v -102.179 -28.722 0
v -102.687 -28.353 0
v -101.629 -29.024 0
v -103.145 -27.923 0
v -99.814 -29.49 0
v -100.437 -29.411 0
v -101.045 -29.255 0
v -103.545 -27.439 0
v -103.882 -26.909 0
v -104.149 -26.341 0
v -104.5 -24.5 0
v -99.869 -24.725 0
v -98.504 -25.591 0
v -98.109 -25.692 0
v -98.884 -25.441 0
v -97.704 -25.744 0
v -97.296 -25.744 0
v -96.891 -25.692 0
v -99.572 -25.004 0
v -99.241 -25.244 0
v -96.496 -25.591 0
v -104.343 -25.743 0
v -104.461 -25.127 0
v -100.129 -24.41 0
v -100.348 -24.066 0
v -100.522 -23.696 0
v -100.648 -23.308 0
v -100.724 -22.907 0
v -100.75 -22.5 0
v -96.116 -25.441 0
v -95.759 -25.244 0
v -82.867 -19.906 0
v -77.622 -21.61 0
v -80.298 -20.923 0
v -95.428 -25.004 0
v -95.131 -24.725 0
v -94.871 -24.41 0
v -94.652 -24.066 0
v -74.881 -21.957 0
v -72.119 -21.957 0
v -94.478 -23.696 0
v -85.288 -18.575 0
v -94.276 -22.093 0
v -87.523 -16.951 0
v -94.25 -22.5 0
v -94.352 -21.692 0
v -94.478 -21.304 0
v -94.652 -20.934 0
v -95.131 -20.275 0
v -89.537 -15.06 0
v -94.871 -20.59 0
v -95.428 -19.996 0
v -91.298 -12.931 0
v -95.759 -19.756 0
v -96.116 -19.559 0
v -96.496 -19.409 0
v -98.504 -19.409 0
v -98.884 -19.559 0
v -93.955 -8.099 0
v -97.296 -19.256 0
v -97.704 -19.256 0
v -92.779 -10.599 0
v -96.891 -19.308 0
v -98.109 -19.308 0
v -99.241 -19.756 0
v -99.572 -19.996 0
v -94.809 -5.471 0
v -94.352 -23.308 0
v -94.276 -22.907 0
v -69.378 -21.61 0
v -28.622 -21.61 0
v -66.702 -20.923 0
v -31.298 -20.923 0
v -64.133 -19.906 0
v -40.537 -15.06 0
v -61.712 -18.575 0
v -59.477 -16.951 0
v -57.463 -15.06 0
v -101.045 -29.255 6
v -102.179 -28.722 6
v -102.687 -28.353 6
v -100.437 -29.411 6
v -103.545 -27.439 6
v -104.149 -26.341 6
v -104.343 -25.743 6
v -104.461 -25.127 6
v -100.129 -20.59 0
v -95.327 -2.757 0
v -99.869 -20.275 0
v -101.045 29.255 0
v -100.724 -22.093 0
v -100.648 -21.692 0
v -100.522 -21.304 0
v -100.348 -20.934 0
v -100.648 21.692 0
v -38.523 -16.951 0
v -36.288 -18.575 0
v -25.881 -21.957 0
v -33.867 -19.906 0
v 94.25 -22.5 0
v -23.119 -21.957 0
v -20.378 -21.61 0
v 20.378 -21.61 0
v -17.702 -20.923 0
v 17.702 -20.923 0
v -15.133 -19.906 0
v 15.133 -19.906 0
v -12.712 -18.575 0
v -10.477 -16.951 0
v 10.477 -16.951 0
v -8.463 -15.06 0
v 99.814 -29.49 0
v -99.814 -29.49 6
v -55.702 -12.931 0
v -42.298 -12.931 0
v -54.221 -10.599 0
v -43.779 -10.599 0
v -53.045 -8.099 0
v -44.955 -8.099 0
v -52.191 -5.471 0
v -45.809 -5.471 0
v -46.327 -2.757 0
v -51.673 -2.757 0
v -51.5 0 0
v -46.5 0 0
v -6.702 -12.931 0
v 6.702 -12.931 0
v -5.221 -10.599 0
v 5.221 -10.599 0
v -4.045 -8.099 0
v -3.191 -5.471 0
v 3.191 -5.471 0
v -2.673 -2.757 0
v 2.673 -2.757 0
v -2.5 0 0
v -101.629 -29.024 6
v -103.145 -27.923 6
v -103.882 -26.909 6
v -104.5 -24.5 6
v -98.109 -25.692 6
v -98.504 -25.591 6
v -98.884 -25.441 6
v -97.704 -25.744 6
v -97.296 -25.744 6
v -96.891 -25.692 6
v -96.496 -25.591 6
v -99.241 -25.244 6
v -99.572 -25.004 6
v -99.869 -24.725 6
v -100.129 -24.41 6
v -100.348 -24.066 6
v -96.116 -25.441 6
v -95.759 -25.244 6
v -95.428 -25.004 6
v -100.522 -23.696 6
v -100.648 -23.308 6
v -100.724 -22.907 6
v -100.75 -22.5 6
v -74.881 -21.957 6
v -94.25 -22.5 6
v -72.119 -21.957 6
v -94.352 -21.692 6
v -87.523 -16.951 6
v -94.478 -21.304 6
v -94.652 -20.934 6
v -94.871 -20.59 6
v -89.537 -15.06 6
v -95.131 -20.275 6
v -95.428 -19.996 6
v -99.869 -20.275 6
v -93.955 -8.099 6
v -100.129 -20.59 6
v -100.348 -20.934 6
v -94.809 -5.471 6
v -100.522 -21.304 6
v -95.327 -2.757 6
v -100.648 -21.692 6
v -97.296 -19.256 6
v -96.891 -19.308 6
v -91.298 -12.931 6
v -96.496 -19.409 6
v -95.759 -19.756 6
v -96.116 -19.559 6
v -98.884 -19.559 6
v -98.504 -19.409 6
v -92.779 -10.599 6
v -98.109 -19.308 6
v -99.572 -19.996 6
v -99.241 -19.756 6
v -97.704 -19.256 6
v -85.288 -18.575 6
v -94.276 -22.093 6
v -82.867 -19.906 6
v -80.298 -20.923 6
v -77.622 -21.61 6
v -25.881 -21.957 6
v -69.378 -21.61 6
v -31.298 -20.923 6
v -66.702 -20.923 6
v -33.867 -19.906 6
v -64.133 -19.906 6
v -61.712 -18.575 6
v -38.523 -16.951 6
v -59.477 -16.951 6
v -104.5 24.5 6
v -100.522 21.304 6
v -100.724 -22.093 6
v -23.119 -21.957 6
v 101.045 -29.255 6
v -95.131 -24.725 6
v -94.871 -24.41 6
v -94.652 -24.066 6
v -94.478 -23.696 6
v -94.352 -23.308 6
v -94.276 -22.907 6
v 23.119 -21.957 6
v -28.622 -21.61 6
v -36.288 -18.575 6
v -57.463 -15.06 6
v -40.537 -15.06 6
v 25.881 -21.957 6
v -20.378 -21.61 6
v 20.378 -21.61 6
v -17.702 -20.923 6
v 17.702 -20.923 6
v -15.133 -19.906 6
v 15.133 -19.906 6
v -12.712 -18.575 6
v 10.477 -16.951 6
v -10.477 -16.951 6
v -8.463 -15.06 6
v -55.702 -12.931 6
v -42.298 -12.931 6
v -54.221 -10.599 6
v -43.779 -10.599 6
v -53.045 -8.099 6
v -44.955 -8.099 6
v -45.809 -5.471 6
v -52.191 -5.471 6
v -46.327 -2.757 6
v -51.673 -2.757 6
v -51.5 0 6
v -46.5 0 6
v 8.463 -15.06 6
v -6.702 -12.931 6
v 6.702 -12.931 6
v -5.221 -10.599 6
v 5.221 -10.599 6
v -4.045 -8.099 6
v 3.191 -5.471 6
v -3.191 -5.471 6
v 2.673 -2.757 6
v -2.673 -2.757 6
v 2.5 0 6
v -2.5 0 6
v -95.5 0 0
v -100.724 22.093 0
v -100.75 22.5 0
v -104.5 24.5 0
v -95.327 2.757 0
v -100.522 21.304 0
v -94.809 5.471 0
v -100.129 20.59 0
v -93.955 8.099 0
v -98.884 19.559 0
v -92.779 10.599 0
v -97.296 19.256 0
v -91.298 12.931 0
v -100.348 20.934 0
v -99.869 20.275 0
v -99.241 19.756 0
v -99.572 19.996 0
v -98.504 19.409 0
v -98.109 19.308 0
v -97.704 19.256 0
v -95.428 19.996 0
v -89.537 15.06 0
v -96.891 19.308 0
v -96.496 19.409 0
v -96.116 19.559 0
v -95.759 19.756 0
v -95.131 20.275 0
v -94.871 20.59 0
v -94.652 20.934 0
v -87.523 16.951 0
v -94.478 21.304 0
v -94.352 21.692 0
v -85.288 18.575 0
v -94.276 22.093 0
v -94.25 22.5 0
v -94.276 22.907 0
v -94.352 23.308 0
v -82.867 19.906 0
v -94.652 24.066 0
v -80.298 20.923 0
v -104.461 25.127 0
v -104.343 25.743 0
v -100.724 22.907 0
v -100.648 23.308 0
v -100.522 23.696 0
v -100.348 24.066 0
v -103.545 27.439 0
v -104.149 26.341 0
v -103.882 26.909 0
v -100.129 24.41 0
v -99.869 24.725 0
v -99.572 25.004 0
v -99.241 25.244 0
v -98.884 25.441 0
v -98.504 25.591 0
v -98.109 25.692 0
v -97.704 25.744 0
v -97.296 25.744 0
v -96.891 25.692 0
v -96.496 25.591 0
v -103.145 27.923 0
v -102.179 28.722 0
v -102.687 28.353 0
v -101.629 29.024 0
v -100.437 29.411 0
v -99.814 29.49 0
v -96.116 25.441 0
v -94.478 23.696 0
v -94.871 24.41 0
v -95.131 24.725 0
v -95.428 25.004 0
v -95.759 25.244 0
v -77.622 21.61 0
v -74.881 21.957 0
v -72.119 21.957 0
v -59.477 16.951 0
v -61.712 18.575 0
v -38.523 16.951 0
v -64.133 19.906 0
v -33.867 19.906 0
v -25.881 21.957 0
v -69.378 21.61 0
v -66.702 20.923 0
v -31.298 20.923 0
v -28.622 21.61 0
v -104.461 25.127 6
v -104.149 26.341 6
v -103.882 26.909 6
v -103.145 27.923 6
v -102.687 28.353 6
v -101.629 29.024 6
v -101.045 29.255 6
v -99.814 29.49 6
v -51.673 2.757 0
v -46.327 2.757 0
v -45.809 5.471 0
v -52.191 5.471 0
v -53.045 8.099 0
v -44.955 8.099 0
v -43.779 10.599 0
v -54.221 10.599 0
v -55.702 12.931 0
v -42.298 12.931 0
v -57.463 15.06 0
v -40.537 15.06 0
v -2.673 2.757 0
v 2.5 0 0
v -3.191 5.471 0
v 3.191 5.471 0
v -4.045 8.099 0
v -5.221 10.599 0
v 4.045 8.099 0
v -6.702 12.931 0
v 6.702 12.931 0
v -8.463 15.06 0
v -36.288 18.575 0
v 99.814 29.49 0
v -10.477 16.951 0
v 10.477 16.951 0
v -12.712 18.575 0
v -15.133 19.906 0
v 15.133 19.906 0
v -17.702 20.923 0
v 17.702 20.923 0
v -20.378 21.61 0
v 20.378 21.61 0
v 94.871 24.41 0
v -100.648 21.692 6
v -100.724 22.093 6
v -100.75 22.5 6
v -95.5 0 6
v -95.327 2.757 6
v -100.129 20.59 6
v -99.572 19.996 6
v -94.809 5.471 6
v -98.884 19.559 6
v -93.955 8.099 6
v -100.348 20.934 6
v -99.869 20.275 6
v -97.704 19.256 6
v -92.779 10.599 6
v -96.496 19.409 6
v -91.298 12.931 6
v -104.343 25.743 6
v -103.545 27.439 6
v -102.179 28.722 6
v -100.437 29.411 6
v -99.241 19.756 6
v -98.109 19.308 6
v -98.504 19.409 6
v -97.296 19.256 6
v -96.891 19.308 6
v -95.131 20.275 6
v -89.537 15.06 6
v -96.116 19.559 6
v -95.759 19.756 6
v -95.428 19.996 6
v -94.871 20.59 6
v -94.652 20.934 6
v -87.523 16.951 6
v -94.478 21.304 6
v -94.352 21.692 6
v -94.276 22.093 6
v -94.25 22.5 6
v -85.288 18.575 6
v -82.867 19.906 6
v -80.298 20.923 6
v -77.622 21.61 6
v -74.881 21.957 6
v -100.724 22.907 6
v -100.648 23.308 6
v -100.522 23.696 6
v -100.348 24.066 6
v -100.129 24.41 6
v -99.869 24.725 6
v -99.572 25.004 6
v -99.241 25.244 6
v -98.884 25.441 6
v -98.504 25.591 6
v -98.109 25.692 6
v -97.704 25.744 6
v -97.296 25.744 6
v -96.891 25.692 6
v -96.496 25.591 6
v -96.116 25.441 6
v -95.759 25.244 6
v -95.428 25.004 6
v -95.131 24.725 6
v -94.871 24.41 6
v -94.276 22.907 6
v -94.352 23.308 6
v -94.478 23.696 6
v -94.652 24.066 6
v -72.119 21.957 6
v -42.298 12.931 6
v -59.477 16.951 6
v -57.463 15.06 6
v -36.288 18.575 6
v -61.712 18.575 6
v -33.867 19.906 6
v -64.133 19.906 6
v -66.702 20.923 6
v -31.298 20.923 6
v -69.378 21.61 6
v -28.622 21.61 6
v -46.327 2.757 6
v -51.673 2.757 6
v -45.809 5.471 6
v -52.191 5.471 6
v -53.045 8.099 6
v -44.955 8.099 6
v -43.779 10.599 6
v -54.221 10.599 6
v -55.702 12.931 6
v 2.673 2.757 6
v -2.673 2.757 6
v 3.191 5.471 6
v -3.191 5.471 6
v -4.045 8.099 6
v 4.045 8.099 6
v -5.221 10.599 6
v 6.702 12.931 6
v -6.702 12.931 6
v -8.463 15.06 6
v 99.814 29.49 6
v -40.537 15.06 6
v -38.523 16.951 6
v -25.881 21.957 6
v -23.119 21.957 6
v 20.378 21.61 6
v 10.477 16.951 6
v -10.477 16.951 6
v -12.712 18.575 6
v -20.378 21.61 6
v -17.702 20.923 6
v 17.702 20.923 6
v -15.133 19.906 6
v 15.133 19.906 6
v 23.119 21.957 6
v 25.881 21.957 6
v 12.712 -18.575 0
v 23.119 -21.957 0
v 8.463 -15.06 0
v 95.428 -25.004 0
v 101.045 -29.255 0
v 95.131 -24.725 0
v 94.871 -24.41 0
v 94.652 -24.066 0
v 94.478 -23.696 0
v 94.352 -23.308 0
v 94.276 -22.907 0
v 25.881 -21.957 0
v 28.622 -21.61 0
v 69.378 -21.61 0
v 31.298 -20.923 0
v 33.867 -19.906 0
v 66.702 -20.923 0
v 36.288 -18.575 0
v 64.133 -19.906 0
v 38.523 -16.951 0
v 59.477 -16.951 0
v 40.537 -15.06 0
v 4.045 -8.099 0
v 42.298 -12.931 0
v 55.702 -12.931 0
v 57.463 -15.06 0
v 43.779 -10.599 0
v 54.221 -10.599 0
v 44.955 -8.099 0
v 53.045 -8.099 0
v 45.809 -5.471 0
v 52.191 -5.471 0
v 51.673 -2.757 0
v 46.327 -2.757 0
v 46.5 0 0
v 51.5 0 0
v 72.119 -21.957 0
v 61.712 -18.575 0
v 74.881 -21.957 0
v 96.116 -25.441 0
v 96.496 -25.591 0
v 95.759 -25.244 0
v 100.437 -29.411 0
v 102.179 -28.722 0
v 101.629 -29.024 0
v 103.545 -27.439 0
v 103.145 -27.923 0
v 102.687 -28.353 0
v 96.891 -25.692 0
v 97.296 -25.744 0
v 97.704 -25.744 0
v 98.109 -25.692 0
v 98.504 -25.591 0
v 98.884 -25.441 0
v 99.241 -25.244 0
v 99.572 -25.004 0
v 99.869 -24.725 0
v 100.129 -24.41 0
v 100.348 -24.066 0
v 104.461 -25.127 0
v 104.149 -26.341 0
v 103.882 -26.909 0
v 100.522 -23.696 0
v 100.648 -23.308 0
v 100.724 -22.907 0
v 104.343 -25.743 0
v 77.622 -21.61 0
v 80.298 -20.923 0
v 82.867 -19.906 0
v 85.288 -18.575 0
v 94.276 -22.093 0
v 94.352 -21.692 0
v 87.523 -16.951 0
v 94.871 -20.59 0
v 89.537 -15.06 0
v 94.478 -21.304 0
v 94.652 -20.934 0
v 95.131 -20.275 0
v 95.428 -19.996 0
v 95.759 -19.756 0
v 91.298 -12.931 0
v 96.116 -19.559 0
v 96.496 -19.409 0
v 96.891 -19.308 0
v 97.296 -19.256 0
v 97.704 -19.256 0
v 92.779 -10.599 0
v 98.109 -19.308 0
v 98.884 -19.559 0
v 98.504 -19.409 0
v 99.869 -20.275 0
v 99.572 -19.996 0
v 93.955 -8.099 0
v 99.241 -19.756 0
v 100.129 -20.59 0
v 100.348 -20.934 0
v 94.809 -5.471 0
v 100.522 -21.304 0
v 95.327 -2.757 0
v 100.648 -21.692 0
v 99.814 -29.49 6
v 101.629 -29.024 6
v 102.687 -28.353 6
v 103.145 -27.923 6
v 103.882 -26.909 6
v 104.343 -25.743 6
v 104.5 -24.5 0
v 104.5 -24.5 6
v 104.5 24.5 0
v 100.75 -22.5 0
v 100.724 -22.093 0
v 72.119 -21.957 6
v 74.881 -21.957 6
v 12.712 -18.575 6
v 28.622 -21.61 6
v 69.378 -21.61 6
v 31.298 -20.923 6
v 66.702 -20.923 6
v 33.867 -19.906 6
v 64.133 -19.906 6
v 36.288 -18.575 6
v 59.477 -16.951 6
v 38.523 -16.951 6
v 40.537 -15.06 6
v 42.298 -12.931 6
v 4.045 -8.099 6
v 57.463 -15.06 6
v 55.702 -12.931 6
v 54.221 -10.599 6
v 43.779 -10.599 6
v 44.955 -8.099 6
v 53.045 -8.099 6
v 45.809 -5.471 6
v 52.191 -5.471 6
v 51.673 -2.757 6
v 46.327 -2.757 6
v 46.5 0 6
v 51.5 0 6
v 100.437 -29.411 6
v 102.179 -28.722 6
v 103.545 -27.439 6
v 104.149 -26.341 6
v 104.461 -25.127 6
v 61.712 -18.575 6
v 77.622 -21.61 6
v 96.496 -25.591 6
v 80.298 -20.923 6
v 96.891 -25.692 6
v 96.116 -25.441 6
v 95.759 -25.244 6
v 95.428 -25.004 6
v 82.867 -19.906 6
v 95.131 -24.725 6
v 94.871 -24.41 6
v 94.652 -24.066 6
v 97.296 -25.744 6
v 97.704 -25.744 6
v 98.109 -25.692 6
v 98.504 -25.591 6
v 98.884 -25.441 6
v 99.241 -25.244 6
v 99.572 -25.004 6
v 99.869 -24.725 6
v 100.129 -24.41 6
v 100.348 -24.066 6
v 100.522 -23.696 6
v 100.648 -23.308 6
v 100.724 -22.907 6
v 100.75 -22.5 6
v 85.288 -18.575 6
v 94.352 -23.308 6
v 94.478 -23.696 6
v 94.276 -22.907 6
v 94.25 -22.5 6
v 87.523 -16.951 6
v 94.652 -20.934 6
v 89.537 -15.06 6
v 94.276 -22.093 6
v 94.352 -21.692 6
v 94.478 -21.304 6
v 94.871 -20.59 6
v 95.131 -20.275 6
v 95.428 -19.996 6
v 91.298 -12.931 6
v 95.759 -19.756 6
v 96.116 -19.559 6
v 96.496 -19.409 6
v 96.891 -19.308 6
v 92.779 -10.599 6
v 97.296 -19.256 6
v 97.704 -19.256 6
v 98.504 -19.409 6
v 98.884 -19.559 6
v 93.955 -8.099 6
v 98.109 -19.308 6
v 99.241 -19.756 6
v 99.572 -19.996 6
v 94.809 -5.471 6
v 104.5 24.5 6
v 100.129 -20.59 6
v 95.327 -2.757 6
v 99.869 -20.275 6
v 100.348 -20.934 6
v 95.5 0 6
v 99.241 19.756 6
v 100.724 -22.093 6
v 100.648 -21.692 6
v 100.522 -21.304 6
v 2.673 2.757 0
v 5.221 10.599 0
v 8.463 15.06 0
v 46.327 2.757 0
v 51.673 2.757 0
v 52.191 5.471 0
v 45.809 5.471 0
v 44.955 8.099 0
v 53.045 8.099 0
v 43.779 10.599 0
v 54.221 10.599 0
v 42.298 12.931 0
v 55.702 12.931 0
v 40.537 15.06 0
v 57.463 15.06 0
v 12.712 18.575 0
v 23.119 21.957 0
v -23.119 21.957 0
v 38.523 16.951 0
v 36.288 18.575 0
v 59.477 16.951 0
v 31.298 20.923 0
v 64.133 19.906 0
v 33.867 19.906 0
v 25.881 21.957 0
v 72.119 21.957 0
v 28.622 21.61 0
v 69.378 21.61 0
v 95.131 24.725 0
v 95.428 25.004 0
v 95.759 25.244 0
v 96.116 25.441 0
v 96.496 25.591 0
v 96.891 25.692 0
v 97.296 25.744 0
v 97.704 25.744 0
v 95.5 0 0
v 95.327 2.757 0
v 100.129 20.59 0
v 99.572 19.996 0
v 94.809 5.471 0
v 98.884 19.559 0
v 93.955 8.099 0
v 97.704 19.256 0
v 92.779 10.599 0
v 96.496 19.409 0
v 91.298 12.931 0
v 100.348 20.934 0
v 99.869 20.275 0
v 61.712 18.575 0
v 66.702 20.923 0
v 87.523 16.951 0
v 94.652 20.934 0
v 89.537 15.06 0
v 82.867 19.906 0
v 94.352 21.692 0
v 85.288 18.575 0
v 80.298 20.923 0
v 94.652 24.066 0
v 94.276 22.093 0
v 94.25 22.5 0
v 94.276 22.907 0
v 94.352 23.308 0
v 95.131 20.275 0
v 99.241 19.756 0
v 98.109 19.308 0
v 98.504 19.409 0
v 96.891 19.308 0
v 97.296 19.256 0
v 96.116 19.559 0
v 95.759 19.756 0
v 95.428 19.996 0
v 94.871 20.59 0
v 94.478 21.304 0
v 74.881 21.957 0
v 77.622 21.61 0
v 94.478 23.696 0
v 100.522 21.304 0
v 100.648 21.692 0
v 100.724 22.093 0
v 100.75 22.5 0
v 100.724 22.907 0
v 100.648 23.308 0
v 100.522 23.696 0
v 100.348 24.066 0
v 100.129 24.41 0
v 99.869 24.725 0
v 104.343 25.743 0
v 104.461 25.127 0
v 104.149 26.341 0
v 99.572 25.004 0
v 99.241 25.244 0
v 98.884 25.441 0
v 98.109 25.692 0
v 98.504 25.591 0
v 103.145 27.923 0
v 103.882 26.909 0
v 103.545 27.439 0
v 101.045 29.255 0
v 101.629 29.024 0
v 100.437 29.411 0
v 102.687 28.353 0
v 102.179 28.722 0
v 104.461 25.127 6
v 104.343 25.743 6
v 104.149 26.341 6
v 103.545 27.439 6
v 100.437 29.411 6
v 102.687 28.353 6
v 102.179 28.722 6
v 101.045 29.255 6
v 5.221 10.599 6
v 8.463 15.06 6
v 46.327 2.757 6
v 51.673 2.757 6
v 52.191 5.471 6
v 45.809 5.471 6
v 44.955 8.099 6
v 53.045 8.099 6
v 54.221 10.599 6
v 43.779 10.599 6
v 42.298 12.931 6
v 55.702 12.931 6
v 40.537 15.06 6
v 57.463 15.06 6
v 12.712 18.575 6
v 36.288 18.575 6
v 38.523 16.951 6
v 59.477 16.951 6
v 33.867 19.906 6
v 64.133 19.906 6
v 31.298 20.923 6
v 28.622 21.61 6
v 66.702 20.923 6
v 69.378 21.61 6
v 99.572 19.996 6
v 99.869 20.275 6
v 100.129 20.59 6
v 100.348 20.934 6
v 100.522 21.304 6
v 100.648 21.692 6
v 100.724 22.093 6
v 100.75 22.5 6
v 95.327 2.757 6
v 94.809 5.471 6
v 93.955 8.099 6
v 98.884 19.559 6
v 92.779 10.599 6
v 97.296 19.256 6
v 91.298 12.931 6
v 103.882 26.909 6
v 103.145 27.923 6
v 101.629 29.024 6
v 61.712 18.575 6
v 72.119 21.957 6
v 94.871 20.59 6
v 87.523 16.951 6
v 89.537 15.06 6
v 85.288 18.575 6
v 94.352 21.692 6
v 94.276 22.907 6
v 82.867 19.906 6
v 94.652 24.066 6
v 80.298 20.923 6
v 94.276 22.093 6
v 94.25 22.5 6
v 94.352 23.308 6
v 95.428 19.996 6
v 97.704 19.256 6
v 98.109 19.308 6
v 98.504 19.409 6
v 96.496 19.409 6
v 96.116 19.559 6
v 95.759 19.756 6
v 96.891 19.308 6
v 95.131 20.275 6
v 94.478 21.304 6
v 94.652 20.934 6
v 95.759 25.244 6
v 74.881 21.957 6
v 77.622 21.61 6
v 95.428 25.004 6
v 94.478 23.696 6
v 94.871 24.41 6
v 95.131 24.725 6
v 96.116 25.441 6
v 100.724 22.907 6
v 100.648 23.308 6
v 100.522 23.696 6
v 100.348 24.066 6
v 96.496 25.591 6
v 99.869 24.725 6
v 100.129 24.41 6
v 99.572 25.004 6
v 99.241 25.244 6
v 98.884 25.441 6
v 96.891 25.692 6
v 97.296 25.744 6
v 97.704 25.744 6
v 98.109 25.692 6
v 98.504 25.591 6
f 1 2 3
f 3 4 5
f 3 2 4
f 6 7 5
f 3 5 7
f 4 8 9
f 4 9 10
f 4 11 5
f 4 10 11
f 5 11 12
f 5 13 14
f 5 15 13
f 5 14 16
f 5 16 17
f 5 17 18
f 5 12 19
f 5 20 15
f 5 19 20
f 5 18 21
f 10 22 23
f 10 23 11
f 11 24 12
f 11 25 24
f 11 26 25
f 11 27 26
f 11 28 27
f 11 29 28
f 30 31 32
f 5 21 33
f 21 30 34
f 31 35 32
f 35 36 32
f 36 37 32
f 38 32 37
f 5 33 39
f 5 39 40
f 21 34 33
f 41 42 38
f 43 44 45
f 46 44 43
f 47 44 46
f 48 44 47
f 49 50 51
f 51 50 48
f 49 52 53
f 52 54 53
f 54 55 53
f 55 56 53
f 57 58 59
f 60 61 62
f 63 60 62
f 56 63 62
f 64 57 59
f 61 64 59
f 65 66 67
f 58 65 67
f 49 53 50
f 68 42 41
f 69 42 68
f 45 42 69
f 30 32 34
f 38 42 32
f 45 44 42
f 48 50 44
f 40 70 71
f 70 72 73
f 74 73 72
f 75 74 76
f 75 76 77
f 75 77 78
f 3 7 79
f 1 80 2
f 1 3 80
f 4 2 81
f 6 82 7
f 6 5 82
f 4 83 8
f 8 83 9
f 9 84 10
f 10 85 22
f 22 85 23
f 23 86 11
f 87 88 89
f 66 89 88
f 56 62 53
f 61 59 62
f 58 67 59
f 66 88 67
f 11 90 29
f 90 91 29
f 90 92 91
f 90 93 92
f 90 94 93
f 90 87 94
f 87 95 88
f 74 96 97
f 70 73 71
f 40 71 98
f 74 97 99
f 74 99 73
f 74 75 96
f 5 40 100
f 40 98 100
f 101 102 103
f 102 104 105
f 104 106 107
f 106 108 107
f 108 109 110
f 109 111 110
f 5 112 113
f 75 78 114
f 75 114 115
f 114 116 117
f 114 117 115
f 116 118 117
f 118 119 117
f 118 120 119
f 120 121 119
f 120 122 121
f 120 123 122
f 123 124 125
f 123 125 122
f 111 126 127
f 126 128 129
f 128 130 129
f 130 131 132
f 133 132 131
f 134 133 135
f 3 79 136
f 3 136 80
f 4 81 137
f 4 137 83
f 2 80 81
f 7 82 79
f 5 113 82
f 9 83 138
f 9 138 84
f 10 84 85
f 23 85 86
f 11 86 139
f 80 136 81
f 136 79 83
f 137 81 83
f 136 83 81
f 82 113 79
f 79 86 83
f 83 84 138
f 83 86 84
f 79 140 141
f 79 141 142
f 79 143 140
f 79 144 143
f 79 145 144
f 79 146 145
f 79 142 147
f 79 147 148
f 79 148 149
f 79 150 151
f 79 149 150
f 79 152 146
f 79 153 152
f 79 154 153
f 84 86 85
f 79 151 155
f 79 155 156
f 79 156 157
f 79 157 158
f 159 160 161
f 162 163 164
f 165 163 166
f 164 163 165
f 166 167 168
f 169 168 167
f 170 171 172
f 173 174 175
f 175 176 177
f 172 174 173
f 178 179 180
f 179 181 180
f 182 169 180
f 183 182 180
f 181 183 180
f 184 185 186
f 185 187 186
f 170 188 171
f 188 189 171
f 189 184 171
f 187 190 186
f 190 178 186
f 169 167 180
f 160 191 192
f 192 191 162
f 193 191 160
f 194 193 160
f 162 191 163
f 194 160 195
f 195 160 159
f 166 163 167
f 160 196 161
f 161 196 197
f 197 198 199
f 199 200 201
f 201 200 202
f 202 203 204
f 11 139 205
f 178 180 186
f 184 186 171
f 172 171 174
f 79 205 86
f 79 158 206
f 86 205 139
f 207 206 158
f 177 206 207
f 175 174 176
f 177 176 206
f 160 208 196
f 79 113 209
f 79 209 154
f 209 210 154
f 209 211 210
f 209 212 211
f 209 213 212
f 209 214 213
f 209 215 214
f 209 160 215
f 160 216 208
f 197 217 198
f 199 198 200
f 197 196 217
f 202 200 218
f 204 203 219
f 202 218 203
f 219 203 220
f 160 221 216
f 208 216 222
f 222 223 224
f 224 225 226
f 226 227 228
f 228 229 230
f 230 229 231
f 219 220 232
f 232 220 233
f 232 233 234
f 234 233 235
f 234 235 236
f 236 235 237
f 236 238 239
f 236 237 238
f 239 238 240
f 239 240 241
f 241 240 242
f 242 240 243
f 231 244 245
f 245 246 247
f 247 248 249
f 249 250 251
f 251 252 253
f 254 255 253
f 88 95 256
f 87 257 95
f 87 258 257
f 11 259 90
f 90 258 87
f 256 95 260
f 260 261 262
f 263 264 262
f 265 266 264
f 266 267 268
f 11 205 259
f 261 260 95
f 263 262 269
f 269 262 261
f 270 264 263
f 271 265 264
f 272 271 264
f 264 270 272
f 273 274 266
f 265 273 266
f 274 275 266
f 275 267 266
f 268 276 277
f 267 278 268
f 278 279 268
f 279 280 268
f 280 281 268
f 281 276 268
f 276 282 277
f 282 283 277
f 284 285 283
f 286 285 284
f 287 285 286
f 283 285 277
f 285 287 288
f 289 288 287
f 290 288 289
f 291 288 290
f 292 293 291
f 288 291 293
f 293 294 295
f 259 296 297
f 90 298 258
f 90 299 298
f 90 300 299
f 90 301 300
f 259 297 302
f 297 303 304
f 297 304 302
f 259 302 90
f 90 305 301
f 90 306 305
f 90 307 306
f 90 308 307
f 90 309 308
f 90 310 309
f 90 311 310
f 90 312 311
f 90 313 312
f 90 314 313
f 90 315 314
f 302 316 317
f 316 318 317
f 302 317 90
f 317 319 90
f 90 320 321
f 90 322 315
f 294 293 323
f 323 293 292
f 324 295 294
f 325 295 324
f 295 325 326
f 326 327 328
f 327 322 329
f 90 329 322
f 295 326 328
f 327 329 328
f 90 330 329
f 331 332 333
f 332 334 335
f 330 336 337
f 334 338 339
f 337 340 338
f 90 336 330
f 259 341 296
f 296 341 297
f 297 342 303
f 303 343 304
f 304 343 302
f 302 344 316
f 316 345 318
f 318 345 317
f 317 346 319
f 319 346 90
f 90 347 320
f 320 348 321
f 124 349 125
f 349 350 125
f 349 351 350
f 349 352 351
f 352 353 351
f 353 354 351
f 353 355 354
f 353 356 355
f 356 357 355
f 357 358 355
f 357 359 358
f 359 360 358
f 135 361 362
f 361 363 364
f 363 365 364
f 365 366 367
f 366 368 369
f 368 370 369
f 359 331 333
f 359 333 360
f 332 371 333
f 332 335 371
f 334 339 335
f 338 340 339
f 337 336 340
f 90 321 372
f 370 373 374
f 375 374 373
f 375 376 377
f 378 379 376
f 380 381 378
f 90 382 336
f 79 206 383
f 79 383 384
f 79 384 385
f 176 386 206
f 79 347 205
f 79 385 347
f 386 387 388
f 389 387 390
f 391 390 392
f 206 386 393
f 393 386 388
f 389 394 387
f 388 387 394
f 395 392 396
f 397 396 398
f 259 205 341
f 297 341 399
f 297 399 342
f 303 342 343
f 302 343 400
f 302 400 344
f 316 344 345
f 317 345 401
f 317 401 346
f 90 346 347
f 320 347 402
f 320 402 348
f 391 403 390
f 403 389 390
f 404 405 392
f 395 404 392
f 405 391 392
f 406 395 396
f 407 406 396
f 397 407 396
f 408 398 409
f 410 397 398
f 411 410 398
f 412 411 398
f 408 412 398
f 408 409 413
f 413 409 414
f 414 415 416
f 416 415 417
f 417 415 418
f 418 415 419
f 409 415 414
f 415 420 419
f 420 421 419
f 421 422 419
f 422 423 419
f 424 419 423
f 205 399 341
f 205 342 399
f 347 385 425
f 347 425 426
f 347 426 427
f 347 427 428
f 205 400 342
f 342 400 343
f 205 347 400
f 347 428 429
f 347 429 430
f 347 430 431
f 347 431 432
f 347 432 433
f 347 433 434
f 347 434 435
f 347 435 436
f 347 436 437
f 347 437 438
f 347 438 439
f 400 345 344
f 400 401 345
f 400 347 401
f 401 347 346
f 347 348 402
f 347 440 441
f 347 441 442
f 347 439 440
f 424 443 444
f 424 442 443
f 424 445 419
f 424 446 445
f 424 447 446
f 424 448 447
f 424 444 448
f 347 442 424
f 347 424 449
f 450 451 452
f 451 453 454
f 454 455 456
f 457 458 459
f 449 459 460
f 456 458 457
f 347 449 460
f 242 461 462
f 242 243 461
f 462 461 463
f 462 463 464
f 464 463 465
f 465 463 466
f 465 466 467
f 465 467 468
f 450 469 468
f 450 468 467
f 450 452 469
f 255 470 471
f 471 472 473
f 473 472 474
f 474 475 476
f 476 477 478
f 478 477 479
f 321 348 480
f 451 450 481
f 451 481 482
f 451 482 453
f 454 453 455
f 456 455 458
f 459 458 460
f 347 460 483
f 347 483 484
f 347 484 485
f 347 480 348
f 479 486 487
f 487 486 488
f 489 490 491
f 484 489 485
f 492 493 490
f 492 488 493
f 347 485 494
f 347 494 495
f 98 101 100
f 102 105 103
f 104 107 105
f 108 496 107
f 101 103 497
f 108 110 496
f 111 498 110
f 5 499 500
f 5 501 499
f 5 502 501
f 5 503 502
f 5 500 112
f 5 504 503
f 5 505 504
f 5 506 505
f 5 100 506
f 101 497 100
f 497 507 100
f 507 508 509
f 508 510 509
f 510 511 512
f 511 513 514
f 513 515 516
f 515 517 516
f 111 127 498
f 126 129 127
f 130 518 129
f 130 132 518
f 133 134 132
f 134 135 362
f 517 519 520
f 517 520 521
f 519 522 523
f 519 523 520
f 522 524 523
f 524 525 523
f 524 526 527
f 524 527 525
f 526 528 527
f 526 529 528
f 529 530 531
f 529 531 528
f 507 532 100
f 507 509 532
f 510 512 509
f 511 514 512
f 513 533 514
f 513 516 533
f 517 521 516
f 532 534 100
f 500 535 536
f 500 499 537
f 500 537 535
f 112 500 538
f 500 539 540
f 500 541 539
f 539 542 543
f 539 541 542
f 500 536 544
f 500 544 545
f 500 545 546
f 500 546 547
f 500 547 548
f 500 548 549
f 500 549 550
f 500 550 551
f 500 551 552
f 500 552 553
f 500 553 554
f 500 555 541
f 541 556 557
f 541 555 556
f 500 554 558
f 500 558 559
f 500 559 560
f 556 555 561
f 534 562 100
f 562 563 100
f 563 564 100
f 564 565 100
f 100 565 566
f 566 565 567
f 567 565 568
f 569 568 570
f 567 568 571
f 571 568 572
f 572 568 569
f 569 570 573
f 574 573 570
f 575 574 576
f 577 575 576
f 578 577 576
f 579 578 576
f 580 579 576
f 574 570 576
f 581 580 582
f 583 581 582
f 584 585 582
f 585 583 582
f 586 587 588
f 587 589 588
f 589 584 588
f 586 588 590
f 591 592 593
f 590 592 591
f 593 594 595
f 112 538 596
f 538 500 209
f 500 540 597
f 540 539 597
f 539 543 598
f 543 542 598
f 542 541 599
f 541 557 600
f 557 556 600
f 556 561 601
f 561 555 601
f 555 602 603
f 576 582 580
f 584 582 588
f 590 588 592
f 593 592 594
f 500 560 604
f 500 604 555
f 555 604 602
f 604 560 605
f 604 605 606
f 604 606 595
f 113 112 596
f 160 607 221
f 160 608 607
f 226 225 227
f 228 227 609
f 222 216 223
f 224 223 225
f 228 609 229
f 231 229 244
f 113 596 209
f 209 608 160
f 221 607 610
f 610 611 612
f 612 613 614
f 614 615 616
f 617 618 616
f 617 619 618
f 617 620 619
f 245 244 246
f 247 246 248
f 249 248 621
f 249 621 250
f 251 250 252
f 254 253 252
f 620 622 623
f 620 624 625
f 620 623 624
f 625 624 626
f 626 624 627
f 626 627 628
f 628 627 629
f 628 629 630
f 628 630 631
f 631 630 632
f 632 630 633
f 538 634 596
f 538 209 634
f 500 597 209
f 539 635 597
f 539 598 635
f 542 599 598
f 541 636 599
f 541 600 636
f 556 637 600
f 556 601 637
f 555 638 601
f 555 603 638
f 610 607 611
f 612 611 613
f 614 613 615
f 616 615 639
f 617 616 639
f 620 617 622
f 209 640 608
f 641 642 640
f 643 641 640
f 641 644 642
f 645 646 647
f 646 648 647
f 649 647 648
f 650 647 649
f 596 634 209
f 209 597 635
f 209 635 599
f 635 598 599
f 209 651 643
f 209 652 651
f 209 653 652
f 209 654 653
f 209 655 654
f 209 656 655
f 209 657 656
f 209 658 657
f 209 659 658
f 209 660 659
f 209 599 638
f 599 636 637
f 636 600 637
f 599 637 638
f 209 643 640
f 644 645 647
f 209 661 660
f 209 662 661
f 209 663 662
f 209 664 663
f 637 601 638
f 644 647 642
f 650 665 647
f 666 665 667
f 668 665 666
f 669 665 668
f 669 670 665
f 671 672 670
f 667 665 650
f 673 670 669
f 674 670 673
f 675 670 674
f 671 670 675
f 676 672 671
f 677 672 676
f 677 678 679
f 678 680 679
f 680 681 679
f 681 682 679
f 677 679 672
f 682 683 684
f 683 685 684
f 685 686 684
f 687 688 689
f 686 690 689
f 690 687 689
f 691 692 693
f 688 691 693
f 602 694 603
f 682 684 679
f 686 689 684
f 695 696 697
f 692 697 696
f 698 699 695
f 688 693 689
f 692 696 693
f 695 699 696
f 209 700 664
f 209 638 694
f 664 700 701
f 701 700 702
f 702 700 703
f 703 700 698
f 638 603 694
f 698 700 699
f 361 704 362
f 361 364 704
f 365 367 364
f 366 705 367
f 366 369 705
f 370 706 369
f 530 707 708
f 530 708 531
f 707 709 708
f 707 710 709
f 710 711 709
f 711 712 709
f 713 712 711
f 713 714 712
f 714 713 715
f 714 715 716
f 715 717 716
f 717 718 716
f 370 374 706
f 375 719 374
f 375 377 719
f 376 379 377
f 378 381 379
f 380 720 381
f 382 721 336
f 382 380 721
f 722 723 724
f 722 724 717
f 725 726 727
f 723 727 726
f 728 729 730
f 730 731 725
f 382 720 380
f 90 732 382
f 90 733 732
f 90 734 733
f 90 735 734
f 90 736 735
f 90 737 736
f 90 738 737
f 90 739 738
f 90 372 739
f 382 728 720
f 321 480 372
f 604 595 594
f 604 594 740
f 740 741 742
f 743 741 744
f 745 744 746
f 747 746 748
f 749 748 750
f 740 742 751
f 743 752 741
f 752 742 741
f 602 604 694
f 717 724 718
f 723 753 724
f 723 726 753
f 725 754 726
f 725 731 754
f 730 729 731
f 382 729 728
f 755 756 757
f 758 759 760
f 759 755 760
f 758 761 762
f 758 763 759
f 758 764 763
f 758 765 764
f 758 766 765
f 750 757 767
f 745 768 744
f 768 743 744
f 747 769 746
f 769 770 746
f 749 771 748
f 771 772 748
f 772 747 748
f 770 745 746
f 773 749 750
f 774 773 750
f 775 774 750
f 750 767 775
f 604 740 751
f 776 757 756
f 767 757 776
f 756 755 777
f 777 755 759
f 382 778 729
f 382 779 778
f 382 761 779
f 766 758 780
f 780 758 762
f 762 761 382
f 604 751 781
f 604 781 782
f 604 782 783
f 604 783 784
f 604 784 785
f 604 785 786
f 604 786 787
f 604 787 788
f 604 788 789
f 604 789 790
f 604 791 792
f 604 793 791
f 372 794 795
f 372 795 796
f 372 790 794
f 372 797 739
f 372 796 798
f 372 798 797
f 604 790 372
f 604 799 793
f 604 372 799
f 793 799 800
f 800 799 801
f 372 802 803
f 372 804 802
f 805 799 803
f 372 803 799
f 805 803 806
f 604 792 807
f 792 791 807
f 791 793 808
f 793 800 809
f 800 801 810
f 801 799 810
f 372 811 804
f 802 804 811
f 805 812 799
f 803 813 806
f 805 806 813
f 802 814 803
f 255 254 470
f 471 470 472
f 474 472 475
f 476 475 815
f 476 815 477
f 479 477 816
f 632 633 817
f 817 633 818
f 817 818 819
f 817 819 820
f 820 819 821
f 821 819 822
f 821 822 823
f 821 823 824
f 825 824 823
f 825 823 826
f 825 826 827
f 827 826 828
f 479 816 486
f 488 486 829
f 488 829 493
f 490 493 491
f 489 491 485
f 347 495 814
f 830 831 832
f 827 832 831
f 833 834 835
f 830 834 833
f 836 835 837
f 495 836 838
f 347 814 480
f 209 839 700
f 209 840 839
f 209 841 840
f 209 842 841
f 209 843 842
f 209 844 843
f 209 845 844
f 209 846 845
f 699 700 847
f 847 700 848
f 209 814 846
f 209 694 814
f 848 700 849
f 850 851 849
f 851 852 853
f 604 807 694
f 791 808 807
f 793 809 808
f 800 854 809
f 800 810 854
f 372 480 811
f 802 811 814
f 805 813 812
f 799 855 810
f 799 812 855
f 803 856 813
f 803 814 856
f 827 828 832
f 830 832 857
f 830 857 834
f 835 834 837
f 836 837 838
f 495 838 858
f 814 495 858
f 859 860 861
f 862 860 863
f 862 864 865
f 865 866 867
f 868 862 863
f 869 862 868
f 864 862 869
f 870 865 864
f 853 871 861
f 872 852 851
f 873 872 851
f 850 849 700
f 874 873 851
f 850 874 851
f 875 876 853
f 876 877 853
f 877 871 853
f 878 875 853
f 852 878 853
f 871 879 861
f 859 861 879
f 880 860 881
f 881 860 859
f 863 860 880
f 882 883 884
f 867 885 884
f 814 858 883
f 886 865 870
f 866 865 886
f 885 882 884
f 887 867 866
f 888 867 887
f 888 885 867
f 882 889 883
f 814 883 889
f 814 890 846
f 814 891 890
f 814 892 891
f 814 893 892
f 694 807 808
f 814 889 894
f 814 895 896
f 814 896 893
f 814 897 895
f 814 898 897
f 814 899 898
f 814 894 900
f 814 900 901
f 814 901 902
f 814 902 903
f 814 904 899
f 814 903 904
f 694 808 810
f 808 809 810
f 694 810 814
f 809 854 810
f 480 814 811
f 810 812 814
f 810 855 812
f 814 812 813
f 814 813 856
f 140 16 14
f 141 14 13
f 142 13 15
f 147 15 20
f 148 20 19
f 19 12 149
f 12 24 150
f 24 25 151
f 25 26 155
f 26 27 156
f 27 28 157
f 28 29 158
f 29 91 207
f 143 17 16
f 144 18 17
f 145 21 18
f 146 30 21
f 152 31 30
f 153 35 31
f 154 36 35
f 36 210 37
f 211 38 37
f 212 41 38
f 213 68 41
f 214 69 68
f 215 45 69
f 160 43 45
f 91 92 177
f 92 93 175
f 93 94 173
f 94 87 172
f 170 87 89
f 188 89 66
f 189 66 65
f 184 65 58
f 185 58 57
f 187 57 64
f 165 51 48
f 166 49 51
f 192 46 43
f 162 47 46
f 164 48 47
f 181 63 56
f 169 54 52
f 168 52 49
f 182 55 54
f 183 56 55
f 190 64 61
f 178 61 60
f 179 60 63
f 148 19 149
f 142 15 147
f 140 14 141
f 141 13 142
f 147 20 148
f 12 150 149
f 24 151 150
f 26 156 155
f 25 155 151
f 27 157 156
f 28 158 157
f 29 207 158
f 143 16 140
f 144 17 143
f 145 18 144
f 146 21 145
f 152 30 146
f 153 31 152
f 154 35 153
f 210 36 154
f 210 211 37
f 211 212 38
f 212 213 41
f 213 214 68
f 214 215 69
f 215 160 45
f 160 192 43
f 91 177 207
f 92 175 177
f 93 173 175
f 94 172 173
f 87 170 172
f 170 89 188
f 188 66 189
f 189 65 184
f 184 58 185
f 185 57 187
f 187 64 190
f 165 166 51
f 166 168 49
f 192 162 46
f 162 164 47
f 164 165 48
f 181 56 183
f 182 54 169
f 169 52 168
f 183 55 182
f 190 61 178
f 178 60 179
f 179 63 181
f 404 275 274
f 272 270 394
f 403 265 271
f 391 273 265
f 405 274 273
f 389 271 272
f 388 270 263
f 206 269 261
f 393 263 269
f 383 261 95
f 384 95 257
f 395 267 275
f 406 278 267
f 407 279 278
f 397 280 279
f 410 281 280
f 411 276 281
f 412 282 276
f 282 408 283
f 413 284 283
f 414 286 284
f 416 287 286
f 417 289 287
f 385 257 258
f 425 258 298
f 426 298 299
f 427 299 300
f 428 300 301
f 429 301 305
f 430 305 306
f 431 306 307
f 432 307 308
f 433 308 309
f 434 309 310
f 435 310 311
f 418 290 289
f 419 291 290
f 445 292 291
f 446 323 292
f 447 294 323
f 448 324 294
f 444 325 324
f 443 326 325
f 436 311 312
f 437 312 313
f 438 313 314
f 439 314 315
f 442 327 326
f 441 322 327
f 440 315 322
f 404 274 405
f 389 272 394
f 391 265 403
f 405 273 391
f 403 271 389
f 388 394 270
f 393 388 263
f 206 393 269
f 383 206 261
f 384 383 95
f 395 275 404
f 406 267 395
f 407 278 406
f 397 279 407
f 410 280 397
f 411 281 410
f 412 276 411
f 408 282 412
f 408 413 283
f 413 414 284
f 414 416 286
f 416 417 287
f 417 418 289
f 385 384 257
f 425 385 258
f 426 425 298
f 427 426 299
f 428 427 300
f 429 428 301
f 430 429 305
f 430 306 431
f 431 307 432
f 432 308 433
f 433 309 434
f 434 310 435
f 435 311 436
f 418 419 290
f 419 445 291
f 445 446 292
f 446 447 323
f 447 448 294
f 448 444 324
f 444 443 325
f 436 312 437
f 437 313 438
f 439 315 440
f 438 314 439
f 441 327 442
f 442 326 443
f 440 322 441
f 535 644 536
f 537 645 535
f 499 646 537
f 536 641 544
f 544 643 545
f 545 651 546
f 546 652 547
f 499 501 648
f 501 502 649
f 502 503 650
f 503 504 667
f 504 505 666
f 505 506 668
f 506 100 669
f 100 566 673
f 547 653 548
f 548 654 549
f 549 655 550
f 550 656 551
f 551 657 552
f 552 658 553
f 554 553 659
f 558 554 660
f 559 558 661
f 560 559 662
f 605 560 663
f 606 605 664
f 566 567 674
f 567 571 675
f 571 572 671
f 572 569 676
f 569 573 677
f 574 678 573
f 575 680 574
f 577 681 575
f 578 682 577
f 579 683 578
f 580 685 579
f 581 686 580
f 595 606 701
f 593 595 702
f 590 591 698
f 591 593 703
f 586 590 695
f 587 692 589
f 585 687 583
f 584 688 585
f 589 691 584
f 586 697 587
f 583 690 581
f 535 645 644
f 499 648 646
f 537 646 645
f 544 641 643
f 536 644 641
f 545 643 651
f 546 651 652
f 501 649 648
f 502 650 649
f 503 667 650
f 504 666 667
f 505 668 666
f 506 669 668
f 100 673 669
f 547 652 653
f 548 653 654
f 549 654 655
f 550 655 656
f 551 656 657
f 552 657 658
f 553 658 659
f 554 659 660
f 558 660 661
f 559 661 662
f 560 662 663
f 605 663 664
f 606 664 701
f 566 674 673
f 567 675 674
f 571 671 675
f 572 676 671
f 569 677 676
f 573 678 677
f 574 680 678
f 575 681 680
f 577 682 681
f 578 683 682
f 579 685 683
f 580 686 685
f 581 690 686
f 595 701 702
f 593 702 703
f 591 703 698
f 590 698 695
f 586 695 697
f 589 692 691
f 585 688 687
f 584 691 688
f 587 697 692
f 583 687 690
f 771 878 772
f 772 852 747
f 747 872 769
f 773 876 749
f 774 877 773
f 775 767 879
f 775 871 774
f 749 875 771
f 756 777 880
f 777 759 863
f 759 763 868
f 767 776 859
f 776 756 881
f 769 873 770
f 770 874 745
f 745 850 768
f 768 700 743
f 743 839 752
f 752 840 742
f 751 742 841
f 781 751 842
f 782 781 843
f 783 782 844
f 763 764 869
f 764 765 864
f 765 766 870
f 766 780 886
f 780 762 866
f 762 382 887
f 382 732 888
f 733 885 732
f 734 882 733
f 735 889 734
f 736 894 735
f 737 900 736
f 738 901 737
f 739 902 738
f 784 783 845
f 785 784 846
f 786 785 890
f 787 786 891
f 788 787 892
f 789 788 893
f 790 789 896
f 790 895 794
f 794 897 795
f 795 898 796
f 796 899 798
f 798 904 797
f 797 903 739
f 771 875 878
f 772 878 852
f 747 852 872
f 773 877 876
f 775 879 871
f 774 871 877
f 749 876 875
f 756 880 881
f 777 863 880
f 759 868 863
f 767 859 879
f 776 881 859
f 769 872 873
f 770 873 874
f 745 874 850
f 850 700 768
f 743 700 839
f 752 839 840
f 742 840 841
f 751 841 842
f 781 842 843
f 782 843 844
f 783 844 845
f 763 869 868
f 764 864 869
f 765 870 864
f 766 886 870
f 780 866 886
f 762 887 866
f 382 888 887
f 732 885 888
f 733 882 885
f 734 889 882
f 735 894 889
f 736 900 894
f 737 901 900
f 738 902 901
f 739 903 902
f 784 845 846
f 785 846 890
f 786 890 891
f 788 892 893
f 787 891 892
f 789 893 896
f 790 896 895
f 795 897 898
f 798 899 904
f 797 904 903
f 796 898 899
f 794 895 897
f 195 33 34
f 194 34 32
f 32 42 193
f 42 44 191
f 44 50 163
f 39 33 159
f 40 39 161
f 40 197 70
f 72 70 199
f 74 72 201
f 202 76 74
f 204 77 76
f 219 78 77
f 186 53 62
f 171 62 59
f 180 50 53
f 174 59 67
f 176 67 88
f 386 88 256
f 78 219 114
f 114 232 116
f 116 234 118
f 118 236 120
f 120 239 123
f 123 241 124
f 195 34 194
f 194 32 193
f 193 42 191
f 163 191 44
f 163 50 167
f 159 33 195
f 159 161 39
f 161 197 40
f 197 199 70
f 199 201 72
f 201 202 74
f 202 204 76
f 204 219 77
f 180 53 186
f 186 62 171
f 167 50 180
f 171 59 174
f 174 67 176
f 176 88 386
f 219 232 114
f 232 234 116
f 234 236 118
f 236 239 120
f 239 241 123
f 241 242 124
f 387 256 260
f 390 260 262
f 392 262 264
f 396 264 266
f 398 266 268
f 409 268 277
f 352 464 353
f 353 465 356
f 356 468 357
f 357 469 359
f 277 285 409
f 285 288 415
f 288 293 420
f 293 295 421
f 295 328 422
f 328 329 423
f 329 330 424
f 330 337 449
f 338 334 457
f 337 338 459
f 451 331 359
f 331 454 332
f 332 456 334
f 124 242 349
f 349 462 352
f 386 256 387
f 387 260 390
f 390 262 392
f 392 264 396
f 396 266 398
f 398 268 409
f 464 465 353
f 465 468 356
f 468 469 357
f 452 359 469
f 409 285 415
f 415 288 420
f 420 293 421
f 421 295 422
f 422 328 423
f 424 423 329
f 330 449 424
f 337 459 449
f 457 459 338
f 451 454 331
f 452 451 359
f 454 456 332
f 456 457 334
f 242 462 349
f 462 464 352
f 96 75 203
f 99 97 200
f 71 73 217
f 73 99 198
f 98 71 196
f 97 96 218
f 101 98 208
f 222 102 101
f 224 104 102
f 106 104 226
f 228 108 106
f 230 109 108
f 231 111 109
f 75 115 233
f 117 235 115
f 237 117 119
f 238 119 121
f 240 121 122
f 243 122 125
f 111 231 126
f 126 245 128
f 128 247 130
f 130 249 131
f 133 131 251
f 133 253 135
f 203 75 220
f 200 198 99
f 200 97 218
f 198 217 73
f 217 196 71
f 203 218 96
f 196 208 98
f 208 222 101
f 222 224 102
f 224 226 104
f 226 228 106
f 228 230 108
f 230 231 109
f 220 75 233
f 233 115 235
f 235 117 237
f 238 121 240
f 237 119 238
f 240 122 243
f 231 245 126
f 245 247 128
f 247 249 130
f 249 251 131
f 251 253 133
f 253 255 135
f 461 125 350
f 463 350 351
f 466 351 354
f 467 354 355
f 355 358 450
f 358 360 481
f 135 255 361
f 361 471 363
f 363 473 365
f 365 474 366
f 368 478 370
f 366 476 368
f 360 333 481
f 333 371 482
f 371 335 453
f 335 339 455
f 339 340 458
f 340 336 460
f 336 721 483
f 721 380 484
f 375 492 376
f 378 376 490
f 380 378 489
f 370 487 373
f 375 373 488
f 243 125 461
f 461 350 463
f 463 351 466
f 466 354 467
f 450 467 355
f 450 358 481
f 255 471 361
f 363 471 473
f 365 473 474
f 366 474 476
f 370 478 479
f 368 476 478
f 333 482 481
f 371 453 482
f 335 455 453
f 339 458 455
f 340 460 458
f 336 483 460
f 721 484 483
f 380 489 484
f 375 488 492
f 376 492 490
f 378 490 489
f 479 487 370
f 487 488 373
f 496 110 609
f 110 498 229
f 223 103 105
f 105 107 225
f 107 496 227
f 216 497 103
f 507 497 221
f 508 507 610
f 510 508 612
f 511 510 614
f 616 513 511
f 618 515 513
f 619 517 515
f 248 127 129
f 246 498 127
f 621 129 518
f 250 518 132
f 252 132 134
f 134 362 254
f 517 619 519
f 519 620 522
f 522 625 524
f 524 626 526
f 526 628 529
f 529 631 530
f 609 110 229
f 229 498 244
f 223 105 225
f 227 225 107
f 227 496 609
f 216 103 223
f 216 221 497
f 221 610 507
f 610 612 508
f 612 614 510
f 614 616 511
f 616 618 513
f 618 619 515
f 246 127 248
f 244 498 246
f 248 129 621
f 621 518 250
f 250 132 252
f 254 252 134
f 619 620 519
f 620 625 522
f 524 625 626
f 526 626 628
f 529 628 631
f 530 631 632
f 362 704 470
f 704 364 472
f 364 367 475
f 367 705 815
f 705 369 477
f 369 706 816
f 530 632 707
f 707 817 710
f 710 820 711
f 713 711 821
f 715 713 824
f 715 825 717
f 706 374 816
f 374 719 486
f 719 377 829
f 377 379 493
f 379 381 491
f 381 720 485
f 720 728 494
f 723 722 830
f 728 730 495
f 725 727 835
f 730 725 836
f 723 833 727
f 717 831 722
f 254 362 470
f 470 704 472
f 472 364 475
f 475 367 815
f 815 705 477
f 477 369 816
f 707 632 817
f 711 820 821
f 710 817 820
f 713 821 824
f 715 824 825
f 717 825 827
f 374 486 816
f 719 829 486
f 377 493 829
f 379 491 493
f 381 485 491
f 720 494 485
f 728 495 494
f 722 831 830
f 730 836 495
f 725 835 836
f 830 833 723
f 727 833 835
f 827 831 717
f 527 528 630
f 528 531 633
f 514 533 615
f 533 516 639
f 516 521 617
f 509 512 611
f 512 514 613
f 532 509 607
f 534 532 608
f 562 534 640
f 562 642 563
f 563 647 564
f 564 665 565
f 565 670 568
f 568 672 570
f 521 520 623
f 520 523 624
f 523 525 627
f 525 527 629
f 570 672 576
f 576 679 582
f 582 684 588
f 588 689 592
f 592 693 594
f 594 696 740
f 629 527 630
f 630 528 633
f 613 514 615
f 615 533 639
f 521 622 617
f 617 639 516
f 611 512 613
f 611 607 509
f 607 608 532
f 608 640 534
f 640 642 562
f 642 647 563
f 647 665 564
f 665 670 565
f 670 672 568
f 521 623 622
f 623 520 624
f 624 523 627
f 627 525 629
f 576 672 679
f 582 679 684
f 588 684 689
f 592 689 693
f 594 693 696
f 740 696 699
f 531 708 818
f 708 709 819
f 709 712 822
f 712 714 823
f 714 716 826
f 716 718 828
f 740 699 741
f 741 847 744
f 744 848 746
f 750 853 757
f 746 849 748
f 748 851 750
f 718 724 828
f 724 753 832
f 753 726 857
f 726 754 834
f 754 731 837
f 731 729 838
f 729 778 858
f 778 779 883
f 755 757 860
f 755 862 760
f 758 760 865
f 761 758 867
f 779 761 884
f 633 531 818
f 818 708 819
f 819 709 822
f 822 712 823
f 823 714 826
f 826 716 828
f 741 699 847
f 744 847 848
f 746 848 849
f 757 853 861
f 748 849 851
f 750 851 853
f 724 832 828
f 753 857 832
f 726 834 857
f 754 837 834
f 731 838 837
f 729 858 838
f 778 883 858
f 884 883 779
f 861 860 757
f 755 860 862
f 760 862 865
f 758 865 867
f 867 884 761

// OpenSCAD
$fn = 50;

difference() {
	union() {
		hull() {
			translate(v = [-99.5, 24.5, 0]) {
				cylinder(h = 6, r = 5);
			}
			translate(v = [99.5, 24.5, 0]) {
				cylinder(h = 6, r = 5);
			}
			translate(v = [-99.5, -24.5, 0]) {
				cylinder(h = 6, r = 5);
			}
			translate(v = [99.5, -24.5, 0]) {
				cylinder(h = 6, r = 5);
			}
		}
	}
	union() {
		translate(v = [-97.5, -22.5, -100.0]) {
			cylinder(h = 200, r = 3.25);
		}
		translate(v = [-97.5, 22.5, -100.0]) {
			cylinder(h = 200, r = 3.25);
		}
		translate(v = [97.5, -22.5, -100.0]) {
			cylinder(h = 200, r = 3.25);
		}
		translate(v = [97.5, 22.5, -100.0]) {
			cylinder(h = 200, r = 3.25);
		}
		translate(v = [-97.5, -22.5, -100.0]) {
			cylinder(h = 200, r = 1.8);
		}
		translate(v = [-97.5, 22.5, -100.0]) {
			cylinder(h = 200, r = 1.8);
		}
		translate(v = [97.5, -22.5, -100.0]) {
			cylinder(h = 200, r = 1.8);
		}
		translate(v = [97.5, 22.5, -100.0]) {
			cylinder(h = 200, r = 1.8);
		}
		translate(v = [-73.5, 0, 0.0]) {
			cylinder(h = 6, r = 22.0);
		}
		translate(v = [-24.5, 0, 0.0]) {
			cylinder(h = 6, r = 22.0);
		}
		translate(v = [24.5, 0, 0.0]) {
			cylinder(h = 6, r = 22.0);
		}
		translate(v = [73.5, 0, 0.0]) {
			cylinder(h = 6, r = 22.0);
		}
	}
}
